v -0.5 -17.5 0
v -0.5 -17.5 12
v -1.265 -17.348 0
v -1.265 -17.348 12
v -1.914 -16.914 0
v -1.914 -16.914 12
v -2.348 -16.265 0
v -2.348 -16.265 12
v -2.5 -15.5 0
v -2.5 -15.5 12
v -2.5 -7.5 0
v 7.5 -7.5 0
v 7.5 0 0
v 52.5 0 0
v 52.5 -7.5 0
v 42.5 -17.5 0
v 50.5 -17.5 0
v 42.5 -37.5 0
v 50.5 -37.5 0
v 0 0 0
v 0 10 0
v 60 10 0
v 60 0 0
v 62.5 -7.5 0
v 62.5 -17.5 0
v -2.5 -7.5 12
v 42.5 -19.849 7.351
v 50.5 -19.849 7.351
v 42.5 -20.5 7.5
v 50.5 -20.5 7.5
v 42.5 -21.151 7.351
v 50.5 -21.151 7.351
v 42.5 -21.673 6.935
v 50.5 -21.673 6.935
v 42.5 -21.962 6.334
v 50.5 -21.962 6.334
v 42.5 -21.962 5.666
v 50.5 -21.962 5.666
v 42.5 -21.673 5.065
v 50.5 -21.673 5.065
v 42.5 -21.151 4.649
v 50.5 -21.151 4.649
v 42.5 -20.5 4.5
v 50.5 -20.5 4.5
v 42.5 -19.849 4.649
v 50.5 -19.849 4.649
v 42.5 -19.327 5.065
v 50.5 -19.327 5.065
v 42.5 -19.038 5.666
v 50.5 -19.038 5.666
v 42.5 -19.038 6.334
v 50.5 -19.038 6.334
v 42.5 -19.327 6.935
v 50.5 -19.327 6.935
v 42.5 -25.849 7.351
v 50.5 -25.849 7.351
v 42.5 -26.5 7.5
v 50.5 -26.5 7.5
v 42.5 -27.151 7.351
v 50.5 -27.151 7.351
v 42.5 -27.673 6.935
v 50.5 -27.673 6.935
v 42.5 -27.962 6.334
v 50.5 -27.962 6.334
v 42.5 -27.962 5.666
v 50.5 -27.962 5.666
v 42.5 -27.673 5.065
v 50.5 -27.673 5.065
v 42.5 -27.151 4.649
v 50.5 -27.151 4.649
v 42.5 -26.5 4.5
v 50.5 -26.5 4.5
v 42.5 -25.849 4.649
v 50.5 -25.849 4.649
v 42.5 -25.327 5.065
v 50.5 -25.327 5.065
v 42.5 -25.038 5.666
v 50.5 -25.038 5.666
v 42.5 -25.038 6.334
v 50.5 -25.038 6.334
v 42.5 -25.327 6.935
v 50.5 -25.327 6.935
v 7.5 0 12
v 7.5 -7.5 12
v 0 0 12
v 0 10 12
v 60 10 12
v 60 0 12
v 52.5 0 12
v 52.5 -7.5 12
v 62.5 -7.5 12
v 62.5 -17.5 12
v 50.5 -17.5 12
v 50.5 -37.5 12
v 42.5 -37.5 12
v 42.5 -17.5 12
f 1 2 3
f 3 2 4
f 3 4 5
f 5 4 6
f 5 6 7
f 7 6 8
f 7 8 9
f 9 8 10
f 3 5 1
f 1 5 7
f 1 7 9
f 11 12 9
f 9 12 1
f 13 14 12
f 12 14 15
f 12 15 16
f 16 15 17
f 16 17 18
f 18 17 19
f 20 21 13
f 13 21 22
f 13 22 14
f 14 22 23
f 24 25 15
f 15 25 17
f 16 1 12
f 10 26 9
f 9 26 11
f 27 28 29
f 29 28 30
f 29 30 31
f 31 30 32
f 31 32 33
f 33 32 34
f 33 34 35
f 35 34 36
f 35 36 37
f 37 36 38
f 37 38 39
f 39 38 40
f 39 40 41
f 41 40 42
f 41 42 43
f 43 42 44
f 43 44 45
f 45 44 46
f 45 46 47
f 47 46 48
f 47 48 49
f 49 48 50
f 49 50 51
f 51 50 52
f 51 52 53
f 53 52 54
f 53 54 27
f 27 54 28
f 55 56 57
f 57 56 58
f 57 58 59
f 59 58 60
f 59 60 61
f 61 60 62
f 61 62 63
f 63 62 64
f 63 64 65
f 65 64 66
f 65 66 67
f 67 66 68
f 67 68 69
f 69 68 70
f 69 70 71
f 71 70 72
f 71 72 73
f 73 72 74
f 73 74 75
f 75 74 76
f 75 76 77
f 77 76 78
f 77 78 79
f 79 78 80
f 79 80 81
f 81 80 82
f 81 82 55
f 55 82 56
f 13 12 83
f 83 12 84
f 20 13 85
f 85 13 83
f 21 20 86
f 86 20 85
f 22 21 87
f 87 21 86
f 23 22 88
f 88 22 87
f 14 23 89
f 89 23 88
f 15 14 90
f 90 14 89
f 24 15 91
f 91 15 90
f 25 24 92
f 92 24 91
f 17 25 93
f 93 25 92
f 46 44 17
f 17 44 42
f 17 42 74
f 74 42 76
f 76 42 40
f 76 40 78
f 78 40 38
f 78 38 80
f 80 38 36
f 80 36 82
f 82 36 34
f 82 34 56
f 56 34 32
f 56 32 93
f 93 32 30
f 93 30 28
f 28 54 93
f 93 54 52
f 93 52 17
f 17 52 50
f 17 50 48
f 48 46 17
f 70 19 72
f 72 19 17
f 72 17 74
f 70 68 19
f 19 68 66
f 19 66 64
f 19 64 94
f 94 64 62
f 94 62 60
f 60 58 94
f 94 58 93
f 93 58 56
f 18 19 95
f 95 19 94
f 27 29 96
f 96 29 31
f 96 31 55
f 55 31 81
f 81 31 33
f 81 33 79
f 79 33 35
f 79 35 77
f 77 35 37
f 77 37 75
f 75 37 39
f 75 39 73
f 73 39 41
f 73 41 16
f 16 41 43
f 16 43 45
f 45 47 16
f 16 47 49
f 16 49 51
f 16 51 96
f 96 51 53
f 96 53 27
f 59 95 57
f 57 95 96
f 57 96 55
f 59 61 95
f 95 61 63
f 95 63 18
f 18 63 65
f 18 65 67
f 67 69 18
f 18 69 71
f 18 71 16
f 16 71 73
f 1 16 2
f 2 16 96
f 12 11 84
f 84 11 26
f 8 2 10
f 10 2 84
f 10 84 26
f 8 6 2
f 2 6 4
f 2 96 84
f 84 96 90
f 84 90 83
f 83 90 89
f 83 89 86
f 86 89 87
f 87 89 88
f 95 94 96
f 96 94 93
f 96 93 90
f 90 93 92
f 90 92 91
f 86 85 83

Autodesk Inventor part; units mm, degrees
ref_plane "YZ Plane" through (0, 0, 0) normal (1, 0, 0) x (0, 1, 0)
ref_plane "XZ Plane" through (0, 0, 0) normal (0, 1, 0) x (-1, 0, 0)
ref_plane "XY Plane" through (0, 0, 0) normal (0, 0, 1) x (1, 0, 0)
sketch "Sketch1" plane through (0, 0, 0) normal (0, 0, 1) x (1, 0, 0)
  line L0 (0, 0) -> (0, 10)
  line L1 (0, 10) -> (60, 10)
  line L2 (60, 10) -> (60, 0)
  line L3 (0, 0) -> (7.5, 0)
  line L4 (7.5, 0) -> (7.5, -7.5)
  line L5 (7.5, -7.5) -> (-2.5, -7.5)
  line L6 (-2.5, -7.5) -> (-2.5, -17.5)
  line L7 (30, 10) -> (30, -7.5) construction
  line L8 (60, 0) -> (52.5, 0)
  line L9 (52.5, 0) -> (52.5, -7.5)
  line L10 (52.5, -7.5) -> (62.5, -7.5)
  line L11 (62.5, -7.5) -> (62.5, -17.5)
  line L12 (62.5, -17.5) -> (50.5, -17.5)
  line L13 (50.5, -17.5) -> (50.5, -37.5)
  line L14 (50.5, -37.5) -> (42.5, -37.5)
  line L15 (42.5, -37.5) -> (42.5, -17.5)
  line L16 (42.5, -17.5) -> (-2.5, -17.5)
  dimension "d0" = 10
  dimension "d2" = 60
  dimension "d3" = 7.5
  dimension "d4" = 7.5
  dimension "d5" = 10
  dimension "d6" = 10
  dimension "d21" = 12
  dimension "d22" = 20
  dimension "d23" = 8
extrude "Extrusion1" add sketch "Sketch1" along normal blind 12
sketch "Sketch2" plane through (50.5, -37.5, 0) normal (1, 0, 0) x (0, 0, -1)
  line L0 (0, 20) -> (0, 30) projected
  line L1 (0, 0) -> (0, 20) projected
  line L2 (-12, 0) -> (-12, 8) projected
  line L3 (0, 0) -> (-12, 0) projected
  line L4 (0, 0) -> (-6, 0)
  line L5 (-6, 0) -> (-6, 20)
  line L6 (-6, 20) -> (-6, 17)
  line L7 (-6, 17) -> (-6, 11)
  circle A0 centre (-6, 17) radius 1.5
  circle A1 centre (-6, 11) radius 1.5
  point P0 (0, 37.5)
  dimension "d24" = 6
  dimension "d27" = 3
  dimension "d28" = 6
  dimension "d29" = 3
  dimension "d30" = 3
extrude "Extrusion2" cut sketch "Sketch2" against normal through all
fillet "Fillet1" radius 2 1 edges at (-2.5, -17.5, 6)
properties part number "Basegripper" material "Copper, Wrought"
